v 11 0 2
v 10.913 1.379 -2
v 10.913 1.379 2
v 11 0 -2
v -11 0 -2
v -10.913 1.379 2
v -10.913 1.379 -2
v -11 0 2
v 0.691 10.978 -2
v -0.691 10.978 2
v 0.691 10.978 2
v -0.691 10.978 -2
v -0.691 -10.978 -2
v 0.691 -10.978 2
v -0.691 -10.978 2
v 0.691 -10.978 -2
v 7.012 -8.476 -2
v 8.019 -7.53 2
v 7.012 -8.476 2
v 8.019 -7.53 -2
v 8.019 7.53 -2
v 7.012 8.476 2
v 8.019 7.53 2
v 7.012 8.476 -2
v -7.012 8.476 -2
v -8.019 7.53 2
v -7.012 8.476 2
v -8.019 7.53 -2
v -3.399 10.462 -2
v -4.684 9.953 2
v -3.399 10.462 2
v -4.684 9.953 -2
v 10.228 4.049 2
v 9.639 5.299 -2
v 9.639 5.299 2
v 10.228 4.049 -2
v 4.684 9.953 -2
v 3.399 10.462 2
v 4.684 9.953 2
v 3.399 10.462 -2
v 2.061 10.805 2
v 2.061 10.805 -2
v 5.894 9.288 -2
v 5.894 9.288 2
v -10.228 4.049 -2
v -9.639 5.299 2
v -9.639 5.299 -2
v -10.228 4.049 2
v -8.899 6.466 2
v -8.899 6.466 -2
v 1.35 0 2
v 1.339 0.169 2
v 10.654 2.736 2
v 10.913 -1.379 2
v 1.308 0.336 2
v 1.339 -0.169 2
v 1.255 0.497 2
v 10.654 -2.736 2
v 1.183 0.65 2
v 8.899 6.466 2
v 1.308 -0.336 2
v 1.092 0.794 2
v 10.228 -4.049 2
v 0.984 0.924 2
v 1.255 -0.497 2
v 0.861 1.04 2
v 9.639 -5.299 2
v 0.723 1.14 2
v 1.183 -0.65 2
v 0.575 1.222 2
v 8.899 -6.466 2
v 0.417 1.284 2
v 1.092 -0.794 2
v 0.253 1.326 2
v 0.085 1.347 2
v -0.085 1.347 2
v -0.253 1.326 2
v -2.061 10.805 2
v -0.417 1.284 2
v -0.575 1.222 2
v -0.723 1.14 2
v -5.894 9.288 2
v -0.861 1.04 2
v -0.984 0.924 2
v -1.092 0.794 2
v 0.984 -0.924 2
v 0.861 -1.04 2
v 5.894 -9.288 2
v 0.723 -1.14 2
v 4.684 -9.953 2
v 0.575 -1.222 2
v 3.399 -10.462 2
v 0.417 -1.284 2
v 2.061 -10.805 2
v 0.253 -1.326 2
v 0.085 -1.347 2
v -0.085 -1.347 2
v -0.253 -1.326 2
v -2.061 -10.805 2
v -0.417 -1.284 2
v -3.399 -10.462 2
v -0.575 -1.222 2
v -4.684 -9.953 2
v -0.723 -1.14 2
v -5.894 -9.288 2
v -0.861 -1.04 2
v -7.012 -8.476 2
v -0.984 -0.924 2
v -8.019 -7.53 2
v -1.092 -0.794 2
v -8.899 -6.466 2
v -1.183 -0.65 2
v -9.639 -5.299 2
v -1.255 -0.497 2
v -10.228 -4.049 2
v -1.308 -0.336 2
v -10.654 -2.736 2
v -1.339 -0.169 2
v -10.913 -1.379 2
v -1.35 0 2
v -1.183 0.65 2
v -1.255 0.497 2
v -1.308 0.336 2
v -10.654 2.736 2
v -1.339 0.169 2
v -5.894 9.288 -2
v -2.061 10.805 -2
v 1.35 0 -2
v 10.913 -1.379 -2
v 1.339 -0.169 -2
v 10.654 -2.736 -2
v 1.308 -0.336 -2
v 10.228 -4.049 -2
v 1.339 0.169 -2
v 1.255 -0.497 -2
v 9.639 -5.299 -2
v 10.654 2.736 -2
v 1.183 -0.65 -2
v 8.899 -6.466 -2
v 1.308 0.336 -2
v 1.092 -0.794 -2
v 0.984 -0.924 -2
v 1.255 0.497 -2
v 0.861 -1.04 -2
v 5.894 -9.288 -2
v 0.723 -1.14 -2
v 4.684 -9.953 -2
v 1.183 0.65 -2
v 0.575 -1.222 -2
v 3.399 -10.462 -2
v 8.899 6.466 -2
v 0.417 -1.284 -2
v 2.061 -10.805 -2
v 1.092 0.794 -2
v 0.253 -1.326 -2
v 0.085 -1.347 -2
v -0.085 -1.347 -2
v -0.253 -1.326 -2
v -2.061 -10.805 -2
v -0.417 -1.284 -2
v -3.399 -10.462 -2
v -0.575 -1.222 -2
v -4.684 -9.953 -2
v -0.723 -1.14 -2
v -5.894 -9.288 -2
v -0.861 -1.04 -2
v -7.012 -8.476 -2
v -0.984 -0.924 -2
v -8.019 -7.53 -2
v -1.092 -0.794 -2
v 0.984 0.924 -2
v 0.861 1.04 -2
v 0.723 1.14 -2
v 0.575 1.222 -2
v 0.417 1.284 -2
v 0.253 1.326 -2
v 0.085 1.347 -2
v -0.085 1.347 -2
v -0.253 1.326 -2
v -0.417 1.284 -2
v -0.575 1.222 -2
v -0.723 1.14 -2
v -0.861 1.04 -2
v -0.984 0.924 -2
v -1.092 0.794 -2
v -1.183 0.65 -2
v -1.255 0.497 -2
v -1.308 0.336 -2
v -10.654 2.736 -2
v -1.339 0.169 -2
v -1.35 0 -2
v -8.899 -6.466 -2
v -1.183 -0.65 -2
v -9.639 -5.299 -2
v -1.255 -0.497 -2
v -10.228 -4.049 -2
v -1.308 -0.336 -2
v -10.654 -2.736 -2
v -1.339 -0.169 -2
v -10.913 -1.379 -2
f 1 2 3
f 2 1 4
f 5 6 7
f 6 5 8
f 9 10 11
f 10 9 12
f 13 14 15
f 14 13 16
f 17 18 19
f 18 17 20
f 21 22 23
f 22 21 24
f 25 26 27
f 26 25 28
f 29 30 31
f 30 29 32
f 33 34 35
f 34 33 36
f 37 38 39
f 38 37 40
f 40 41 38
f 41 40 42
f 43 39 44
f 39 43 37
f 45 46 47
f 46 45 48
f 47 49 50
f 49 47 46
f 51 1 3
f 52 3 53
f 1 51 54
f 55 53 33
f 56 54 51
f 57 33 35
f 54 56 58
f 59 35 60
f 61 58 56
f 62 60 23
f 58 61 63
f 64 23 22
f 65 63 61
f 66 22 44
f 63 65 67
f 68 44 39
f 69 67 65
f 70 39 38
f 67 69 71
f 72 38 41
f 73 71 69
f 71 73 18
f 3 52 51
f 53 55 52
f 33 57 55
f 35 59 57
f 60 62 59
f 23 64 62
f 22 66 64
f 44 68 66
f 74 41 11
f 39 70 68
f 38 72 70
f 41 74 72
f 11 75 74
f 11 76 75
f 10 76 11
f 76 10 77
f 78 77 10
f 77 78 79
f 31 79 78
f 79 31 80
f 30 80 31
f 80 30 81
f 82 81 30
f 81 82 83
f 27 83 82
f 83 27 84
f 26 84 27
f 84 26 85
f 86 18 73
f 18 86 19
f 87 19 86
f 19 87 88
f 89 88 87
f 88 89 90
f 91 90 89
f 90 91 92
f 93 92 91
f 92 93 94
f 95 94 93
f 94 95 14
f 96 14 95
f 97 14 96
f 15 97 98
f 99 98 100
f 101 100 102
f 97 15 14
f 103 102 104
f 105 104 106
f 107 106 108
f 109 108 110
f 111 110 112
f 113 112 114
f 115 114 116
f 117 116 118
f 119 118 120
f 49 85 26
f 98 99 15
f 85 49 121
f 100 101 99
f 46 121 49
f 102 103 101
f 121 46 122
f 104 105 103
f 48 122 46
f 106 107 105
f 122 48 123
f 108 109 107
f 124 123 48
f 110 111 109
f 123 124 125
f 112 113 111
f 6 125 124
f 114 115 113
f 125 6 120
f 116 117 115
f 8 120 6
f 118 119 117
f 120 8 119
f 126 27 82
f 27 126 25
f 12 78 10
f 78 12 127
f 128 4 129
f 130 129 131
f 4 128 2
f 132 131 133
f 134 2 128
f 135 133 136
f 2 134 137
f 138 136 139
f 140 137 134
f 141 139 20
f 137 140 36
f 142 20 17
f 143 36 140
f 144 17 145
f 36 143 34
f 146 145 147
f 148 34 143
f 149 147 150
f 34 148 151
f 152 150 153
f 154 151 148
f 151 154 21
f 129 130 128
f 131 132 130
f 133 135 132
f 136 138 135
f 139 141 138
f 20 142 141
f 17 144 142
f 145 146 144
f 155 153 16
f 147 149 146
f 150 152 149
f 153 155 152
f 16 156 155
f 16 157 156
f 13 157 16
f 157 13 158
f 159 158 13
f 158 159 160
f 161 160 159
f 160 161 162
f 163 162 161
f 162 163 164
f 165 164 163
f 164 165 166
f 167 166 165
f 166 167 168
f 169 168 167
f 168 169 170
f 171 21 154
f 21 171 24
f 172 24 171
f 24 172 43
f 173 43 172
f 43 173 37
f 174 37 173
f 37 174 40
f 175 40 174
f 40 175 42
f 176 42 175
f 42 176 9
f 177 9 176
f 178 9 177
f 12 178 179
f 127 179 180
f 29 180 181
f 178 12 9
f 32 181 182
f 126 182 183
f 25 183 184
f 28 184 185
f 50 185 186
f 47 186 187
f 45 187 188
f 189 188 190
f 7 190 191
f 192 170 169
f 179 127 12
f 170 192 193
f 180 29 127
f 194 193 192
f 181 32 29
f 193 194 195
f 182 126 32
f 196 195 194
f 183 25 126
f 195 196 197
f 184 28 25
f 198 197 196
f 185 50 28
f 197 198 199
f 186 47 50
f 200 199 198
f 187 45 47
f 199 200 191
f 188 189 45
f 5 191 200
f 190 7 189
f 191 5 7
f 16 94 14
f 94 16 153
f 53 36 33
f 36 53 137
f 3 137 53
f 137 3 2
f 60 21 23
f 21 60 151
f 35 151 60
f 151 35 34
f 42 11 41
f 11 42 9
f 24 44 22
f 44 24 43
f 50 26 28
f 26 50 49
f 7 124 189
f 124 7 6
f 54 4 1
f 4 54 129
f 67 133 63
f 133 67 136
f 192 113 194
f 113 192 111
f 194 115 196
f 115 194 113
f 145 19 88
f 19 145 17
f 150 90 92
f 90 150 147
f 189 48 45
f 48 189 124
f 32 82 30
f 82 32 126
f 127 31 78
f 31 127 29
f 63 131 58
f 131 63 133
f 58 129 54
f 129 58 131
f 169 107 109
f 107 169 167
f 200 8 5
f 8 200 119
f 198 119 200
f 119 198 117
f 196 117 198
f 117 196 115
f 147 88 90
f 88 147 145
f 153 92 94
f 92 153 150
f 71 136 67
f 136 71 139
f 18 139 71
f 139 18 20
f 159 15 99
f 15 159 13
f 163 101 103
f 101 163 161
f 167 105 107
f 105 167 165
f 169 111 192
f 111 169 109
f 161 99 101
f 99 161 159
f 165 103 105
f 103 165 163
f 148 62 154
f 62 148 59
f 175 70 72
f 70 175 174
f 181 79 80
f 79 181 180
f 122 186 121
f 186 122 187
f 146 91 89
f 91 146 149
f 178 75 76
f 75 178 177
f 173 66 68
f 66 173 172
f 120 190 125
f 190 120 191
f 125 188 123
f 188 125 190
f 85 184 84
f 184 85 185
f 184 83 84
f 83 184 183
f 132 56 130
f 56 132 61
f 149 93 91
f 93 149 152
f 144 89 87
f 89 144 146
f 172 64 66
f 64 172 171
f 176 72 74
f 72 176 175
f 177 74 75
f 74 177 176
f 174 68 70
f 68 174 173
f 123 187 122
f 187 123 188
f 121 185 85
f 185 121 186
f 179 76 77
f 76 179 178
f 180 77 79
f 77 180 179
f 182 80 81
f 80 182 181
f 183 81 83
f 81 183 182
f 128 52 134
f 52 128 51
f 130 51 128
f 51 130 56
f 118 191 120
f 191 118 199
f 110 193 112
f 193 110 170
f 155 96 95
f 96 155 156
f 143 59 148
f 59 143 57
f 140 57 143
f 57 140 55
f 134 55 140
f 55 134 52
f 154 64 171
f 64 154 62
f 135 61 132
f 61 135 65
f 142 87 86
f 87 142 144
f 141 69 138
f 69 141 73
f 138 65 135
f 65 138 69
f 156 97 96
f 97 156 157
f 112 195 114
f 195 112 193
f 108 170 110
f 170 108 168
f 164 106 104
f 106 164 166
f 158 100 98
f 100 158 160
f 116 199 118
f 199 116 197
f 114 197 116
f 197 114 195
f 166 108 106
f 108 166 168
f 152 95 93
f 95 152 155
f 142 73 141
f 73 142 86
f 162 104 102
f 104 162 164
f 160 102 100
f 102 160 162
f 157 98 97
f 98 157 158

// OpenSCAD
$fn = 50;


difference() {
	union() {
		translate(v = [0, 0, -2.0000000000]) {
			cylinder(h = 4, r = 11.0000000000);
		}
	}
	union() {
		translate(v = [0, 0, -100.0000000000]) {
			cylinder(h = 200, r = 1.3500000000);
		}
	}
}
